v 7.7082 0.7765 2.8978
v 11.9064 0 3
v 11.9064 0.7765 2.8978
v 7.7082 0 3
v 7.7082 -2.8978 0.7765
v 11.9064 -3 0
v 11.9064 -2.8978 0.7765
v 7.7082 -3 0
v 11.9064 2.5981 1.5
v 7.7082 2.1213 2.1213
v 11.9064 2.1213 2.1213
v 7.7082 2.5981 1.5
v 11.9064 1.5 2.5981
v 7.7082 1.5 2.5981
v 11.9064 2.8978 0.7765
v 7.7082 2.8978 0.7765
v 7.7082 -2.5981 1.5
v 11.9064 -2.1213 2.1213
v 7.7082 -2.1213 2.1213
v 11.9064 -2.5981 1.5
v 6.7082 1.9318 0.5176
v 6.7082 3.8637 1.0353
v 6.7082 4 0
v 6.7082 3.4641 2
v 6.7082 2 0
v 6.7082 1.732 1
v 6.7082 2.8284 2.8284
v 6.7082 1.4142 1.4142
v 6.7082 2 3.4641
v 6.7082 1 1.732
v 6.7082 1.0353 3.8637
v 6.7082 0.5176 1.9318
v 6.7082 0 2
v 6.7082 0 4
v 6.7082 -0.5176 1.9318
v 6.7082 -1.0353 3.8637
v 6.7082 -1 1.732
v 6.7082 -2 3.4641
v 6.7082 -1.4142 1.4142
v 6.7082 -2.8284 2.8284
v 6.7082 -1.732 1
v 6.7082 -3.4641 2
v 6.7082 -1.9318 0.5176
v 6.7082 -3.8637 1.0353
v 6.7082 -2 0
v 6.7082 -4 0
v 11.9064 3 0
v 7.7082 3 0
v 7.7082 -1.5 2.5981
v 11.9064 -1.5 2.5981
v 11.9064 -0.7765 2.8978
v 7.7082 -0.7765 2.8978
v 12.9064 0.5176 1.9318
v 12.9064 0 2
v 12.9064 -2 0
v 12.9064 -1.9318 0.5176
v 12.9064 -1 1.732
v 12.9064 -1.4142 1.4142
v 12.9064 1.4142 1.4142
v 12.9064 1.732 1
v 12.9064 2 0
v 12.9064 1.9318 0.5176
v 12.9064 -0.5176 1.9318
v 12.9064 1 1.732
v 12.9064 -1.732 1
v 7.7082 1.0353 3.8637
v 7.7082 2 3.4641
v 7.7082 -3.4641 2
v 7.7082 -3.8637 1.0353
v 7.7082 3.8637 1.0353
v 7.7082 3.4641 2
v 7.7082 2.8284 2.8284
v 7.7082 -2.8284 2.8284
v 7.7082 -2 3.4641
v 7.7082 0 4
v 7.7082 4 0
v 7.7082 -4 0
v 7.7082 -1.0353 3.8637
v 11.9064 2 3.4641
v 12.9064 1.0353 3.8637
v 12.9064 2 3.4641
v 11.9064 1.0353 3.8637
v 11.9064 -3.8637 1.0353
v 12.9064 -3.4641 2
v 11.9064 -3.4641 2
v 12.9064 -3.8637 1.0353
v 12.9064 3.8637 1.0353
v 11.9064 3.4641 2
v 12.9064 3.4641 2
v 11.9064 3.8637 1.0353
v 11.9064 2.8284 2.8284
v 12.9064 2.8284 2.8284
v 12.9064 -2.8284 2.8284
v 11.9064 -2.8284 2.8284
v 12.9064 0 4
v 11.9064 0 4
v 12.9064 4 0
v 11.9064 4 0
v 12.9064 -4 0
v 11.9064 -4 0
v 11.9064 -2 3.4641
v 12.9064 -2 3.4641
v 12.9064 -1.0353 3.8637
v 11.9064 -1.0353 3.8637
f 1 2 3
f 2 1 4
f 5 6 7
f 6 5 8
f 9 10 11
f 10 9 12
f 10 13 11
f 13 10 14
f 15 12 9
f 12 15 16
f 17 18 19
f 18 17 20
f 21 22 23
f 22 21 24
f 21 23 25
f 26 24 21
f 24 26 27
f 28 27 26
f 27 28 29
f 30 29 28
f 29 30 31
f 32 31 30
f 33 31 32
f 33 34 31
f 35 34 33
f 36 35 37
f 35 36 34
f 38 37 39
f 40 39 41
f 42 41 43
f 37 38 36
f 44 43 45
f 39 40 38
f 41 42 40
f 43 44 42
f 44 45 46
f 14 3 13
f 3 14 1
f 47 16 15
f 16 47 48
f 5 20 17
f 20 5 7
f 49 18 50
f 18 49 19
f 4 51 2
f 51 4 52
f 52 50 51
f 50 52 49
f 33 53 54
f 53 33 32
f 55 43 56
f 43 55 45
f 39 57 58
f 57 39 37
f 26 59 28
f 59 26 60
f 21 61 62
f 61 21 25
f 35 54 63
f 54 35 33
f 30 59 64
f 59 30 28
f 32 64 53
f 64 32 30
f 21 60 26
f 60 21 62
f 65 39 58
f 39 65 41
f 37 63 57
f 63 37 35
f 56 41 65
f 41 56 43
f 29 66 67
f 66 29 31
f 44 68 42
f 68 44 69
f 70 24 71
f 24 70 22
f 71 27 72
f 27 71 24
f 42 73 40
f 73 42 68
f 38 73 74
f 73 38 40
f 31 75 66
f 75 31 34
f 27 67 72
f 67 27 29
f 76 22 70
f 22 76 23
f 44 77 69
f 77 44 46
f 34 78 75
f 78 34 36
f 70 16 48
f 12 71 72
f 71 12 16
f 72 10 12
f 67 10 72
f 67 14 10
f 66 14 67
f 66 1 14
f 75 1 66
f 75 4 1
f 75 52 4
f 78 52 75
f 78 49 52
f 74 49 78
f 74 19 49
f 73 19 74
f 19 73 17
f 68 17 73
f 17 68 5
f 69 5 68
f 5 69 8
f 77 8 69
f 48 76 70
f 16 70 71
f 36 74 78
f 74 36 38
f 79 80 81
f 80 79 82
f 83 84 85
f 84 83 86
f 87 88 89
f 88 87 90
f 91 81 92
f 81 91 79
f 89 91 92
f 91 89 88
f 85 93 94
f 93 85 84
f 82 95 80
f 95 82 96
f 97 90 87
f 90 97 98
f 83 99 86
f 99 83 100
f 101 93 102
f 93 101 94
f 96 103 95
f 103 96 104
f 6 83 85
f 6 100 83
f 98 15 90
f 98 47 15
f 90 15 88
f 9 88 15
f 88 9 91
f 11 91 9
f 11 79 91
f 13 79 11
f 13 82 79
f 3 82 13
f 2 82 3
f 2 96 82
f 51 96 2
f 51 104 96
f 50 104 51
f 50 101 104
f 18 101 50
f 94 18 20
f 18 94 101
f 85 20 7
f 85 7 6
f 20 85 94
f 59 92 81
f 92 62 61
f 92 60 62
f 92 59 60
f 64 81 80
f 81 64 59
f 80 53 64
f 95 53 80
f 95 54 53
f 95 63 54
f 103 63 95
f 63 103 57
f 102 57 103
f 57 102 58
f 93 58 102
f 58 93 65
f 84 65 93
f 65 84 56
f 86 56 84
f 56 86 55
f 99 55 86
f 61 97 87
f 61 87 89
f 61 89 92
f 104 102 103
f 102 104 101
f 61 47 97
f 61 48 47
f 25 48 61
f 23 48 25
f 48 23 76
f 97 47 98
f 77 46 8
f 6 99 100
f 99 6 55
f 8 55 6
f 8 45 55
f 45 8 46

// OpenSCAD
// file: ../build_environments.scad
// build_environments.scad: modules to build level sections
//

module pool(diameter=10.0, wall_height=2.0, step_width=3.0, connections=[])
{
    difference() {
        union() {
        difference() {
            cylinder(h=0.5,r1=diameter+step_width,r2=diameter+step_width,$fn=48);
            translate([0,0,-0.1])
                cylinder(h=0.7,r1=diameter,r2=diameter,$fn=48);
        }
        difference() {
            cylinder(h=wall_height,r1=diameter+step_width+1.0,r2=diameter+step_width+1.0,$fn=48);
            translate([0,0,-0.1])
                cylinder(h=wall_height+0.2,r1=diameter+step_width,r2=diameter+step_width,$fn=48);
        }
        }
    
        for (c = connections)
        {
            rotate([0,90,0]) {
                angle = atan2(c[1],c[0]);
                rotate([-angle,0,0]) {
                    cylinder(h=diameter+5.0,r1=c[2],r2=c[2],$fn=48);
                }
            }
        }
    }
}

module straight(length=10.0, width=2.0, dy1=0.0, dy2=0.0, dz=0.0)
{
    dims = [0, 0, 0, 0, 0, (dz/length)];
    matrix = [
        [ 1, dims[0], dims[1], 0 ],
        [ dims[2], 1, dims[4], 0 ],
        [ dims[5], dims[3], 1, 0 ],
        [ 0, 0, 0, 1 ]
    ];
    multmatrix(matrix)
    difference() {
        translate([dy1,0,0])
        union() {
            rotate([0,90,0]) {
                difference() {
                    cylinder(h=(length-dy1-dy2),r1=width+1.0,r2=width+1.0,$fn=24);
                    translate([0,0,-0.1])
                        cylinder(h=(length-dy1-dy2+0.2),r1=width,r2=width,$fn=24);
                }
                difference() {
                    cylinder(h=1.0,r1=width+2.0,r2=width+2.0,$fn=24);
                    translate([0,0,-0.1])
                        cylinder(h=1.2,r1=width,r2=width,$fn=24);
                }
                translate([0,0,(length-dy1-dy2)-1.0]) {
                    difference() {
                        cylinder(h=1.0,r1=width+2.0,r2=width+2.0,$fn=24);
                        translate([0,0,-0.1])
                            cylinder(h=1.2,r1=width,r2=width,$fn=24);
                    }
                }
            }
        }
        translate([0,0,-(2*width+4.0)/2])
            cube([3*length,3*length,2*width+4.0],center=true);
    }
}

module curve(p0=[0,0], center=[0,0], dir=1, angle=0.0, width=2.0)
{
    radius = sqrt((p0[0]-center[0])*(p0[0]-center[0]) + (p0[1]-center[1])*(p0[1]-center[1]));
    if (dir == 0) {
        difference() {
            rotate([0,0,-90])
            difference() {
                rotate_extrude(angle = angle, convexity = 10, $fn=32)
                    translate([radius, 0, 0])
                        circle(r = width+1.0,$fn=24);
                rotate([0,0,-1.0])
                    rotate_extrude(angle = angle+2.0, convexity = 10, $fn=32)
                        translate([radius, 0, 0])
                            circle(r = width,$fn=24);
            }
            translate([0,0,-(2*width+4.0)/2])
                cube([5*radius,5*radius,2*width+4.0],center=true);
        }
    }
    else {
        difference() {
            rotate([0,0,90])
            difference() {
                rotate_extrude(angle = -angle, convexity = 10, $fn=32)
                    translate([radius, 0, 0])
                        circle(r = width+1.0,$fn=24);
                rotate([0,0,1.0])
                    rotate_extrude(angle = -angle-2.0, convexity = 10, $fn=32)
                        translate([radius, 0, 0])
                            circle(r = width,$fn=24);
            }
            translate([0,0,-(2*width+4.0)/2])
                cube([5*radius,5*radius,2*width+4.0],center=true);
        }
    }

}

// test pool
//pool(diameter=12.0000, wall_height=3.0000, step_width=3.0000, connections=[[0.0000,-26.0000,2.0000], [23.6074,0.0000,2.0000]]);

// test straight, slope
//straight(length=26.0000, width=2.0000, dy1=11.8322, dy2=6.7082, dz=0.0000);
//straight(length=29.1549, width=12.0000, dy1=0.0000, dy2=0.0000, dz=-15.0000);

// test curve
//curve(p0=[23.6074, 0.0000], center=[23.6074, 5.0000], dir=0, angle=60.1011, width=2.0000);
//curve(p0=[33.6426, 12.4219], center=[37.9771, 9.9295], dir=1, angle=120.4627, width=2.0000);
// main file
use <../build_environments.scad>;
straight(length=24.7386, width=2.0000, dy1=6.7082, dy2=11.8322, dz=0.0000);
